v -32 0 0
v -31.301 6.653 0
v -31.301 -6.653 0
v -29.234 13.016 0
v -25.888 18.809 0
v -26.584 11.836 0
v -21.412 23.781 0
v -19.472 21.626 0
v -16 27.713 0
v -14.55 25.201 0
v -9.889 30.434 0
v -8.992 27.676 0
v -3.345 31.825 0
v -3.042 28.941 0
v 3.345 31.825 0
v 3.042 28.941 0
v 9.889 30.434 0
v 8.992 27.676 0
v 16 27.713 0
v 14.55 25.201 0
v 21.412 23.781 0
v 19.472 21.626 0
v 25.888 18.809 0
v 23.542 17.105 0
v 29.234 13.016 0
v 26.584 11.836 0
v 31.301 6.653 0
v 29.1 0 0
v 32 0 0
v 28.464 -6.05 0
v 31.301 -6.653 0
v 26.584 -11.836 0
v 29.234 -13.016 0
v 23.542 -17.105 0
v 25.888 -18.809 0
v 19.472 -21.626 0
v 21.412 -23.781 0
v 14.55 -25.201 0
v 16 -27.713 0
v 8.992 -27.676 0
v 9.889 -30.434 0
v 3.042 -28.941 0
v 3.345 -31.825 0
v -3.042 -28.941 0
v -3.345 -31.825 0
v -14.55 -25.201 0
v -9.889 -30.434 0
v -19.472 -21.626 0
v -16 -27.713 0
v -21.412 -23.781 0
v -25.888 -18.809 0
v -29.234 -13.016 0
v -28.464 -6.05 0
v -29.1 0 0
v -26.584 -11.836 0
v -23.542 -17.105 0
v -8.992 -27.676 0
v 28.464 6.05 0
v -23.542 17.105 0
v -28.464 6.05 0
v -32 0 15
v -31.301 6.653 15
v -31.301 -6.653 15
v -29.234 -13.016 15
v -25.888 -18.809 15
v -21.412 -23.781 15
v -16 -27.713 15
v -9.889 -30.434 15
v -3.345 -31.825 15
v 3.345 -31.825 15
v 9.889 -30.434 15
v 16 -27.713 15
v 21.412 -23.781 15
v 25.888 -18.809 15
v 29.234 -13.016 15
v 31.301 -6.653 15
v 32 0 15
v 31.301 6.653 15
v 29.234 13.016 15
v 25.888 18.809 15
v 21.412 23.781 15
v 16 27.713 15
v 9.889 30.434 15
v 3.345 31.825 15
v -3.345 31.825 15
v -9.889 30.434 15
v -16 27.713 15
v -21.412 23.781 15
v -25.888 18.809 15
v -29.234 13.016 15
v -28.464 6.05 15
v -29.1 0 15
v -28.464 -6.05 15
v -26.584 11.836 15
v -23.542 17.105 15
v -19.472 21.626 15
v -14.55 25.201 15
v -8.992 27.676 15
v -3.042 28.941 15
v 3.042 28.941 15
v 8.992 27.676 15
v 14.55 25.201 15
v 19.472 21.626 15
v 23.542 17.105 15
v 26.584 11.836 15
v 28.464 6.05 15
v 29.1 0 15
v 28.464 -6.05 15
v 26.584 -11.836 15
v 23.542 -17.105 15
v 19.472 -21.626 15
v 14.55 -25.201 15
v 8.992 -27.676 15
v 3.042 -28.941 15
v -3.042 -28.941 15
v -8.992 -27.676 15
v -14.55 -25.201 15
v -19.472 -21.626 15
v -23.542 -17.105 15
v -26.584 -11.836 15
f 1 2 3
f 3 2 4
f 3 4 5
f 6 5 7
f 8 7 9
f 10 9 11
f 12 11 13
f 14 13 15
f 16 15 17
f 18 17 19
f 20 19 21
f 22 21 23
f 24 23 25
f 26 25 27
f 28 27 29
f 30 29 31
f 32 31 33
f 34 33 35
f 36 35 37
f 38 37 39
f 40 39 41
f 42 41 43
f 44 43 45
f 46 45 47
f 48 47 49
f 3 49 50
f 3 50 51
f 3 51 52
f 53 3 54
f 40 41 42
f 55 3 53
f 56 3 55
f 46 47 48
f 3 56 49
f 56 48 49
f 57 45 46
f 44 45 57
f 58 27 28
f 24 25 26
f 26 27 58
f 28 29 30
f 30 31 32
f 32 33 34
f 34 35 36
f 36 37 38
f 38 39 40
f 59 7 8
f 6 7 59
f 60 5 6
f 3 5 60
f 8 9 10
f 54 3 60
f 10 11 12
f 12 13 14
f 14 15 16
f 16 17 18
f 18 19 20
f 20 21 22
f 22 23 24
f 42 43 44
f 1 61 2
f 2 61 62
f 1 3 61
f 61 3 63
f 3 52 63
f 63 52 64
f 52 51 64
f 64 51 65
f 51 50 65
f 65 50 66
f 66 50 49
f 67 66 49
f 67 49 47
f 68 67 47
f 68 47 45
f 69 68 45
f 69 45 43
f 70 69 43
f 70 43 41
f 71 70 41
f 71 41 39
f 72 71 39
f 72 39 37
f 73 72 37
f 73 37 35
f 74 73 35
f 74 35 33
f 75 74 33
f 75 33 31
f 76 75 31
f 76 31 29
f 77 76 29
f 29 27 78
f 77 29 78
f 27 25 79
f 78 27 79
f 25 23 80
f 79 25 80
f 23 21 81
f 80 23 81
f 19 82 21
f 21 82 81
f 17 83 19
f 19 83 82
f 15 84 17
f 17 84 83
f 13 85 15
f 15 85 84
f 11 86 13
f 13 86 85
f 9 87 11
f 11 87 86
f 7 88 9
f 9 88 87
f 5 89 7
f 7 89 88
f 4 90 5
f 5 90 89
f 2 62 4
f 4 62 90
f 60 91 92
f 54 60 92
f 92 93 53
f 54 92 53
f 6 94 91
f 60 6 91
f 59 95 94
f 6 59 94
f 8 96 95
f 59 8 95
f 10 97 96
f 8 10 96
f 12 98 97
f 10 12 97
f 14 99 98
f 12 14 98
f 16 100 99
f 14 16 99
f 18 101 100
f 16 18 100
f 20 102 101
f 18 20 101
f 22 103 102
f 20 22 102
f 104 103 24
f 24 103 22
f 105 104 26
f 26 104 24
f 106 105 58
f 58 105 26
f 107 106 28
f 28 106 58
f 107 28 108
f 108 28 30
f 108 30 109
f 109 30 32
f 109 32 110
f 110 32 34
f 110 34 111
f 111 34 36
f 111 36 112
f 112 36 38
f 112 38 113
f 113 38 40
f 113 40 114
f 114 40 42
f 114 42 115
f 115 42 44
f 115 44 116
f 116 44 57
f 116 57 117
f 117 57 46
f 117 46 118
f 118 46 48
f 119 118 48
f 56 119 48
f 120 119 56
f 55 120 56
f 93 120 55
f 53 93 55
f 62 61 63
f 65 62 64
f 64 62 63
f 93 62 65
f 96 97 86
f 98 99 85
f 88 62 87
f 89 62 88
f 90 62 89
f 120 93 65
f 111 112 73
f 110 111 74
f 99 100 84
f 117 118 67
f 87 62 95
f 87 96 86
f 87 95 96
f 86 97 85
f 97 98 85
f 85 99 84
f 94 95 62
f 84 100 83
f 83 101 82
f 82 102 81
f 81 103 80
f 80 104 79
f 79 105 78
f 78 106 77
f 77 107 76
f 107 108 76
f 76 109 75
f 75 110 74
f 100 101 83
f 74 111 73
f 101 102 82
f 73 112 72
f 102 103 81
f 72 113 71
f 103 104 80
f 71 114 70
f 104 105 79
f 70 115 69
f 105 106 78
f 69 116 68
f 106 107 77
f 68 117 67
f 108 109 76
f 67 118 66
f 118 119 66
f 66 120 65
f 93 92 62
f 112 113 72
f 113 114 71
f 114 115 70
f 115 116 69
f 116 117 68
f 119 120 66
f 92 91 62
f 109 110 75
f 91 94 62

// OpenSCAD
//Ancho de la pared
pared  = 3;
//Radio del centro hueco
radioC = 11;
//Alto de la capa de apertura
aperH = 6;
//Ancho de la apertura
aperW = 5;
//Ancho del lente macro
macroW = 9.3;
//Profundidad del macro
macroH = 3;
//Profundidad parte de atras y delante
profDelante = 6;
profAtras = 6;

//
//Alto del cilindro del Macro
conH = 10;
//Ancho de la base del macro
macroBW = 9;
macroFH = 6;
macroFW = 10;

//
//Cilindro del MacroConnector
mcW = 32;
mcH = 20;
mcConnH = 8.5;//Altura connector a ranura
mcPared = 5;
mcCejaH = 6;

//
// Cilindro del diffracter
diffH = 15;
diffBase = 2;

diffAreaX = 36;
diffAreaY = 25;
diffAreaZ = (3*diffBase);

diffBaseX = diffAreaX+10;
diffBaseY = diffAreaY+10;
diffBaseZ = diffBase;

difference(){	
	cylinder(r=mcW,diffH);

	translate([0, 0, -0.1])
	cylinder(r=mcW-2.9,diffH+(2*mcCejaH)+1);

}


module cejaExterior(){	
	difference(){
		cylinder(r=mcW+1,mcCejaH-0.5);
		translate([0, 0, -0.1])
		cylinder(r=mcW-3.1,mcCejaH+0.1);
	}
}

module Macro(){
	difference(){
		cylinder(r=radioC+pared,mcConnH+conH-0.1);

		translate([0, 0, -0.5])
		cylinder(r=radioC+0.1,mcConnH);

		translate([0, 0, mcConnH-0.6])
		cylinder(r=macroBW,conH+0.6);
	
		translate([0, 0, mcConnH-0.6])
		cylinder(r=macroFW, macroFH+0.6);

	}
}



module cilindroPared(h){
	translate([0, 0, h/2]){
		difference(){
			cylinder(r=radioC+pared,h, center=true);
			cylinder(r=radioC,h+2, center=true);
		}
	}
}

module apertura(){
	//Crea apertura
	translate([0, 0, (aperH/2)+profDelante ]){
		difference(){
			cylinder(r=radioC+1,aperH,center=true);
			translate([0, 0, aperH-macroH]){
				cylinder(r=macroW/2,aperH,center=true);
			}
			cube([aperW,aperW,aperH+2],center=true);		
		}
	}
}
